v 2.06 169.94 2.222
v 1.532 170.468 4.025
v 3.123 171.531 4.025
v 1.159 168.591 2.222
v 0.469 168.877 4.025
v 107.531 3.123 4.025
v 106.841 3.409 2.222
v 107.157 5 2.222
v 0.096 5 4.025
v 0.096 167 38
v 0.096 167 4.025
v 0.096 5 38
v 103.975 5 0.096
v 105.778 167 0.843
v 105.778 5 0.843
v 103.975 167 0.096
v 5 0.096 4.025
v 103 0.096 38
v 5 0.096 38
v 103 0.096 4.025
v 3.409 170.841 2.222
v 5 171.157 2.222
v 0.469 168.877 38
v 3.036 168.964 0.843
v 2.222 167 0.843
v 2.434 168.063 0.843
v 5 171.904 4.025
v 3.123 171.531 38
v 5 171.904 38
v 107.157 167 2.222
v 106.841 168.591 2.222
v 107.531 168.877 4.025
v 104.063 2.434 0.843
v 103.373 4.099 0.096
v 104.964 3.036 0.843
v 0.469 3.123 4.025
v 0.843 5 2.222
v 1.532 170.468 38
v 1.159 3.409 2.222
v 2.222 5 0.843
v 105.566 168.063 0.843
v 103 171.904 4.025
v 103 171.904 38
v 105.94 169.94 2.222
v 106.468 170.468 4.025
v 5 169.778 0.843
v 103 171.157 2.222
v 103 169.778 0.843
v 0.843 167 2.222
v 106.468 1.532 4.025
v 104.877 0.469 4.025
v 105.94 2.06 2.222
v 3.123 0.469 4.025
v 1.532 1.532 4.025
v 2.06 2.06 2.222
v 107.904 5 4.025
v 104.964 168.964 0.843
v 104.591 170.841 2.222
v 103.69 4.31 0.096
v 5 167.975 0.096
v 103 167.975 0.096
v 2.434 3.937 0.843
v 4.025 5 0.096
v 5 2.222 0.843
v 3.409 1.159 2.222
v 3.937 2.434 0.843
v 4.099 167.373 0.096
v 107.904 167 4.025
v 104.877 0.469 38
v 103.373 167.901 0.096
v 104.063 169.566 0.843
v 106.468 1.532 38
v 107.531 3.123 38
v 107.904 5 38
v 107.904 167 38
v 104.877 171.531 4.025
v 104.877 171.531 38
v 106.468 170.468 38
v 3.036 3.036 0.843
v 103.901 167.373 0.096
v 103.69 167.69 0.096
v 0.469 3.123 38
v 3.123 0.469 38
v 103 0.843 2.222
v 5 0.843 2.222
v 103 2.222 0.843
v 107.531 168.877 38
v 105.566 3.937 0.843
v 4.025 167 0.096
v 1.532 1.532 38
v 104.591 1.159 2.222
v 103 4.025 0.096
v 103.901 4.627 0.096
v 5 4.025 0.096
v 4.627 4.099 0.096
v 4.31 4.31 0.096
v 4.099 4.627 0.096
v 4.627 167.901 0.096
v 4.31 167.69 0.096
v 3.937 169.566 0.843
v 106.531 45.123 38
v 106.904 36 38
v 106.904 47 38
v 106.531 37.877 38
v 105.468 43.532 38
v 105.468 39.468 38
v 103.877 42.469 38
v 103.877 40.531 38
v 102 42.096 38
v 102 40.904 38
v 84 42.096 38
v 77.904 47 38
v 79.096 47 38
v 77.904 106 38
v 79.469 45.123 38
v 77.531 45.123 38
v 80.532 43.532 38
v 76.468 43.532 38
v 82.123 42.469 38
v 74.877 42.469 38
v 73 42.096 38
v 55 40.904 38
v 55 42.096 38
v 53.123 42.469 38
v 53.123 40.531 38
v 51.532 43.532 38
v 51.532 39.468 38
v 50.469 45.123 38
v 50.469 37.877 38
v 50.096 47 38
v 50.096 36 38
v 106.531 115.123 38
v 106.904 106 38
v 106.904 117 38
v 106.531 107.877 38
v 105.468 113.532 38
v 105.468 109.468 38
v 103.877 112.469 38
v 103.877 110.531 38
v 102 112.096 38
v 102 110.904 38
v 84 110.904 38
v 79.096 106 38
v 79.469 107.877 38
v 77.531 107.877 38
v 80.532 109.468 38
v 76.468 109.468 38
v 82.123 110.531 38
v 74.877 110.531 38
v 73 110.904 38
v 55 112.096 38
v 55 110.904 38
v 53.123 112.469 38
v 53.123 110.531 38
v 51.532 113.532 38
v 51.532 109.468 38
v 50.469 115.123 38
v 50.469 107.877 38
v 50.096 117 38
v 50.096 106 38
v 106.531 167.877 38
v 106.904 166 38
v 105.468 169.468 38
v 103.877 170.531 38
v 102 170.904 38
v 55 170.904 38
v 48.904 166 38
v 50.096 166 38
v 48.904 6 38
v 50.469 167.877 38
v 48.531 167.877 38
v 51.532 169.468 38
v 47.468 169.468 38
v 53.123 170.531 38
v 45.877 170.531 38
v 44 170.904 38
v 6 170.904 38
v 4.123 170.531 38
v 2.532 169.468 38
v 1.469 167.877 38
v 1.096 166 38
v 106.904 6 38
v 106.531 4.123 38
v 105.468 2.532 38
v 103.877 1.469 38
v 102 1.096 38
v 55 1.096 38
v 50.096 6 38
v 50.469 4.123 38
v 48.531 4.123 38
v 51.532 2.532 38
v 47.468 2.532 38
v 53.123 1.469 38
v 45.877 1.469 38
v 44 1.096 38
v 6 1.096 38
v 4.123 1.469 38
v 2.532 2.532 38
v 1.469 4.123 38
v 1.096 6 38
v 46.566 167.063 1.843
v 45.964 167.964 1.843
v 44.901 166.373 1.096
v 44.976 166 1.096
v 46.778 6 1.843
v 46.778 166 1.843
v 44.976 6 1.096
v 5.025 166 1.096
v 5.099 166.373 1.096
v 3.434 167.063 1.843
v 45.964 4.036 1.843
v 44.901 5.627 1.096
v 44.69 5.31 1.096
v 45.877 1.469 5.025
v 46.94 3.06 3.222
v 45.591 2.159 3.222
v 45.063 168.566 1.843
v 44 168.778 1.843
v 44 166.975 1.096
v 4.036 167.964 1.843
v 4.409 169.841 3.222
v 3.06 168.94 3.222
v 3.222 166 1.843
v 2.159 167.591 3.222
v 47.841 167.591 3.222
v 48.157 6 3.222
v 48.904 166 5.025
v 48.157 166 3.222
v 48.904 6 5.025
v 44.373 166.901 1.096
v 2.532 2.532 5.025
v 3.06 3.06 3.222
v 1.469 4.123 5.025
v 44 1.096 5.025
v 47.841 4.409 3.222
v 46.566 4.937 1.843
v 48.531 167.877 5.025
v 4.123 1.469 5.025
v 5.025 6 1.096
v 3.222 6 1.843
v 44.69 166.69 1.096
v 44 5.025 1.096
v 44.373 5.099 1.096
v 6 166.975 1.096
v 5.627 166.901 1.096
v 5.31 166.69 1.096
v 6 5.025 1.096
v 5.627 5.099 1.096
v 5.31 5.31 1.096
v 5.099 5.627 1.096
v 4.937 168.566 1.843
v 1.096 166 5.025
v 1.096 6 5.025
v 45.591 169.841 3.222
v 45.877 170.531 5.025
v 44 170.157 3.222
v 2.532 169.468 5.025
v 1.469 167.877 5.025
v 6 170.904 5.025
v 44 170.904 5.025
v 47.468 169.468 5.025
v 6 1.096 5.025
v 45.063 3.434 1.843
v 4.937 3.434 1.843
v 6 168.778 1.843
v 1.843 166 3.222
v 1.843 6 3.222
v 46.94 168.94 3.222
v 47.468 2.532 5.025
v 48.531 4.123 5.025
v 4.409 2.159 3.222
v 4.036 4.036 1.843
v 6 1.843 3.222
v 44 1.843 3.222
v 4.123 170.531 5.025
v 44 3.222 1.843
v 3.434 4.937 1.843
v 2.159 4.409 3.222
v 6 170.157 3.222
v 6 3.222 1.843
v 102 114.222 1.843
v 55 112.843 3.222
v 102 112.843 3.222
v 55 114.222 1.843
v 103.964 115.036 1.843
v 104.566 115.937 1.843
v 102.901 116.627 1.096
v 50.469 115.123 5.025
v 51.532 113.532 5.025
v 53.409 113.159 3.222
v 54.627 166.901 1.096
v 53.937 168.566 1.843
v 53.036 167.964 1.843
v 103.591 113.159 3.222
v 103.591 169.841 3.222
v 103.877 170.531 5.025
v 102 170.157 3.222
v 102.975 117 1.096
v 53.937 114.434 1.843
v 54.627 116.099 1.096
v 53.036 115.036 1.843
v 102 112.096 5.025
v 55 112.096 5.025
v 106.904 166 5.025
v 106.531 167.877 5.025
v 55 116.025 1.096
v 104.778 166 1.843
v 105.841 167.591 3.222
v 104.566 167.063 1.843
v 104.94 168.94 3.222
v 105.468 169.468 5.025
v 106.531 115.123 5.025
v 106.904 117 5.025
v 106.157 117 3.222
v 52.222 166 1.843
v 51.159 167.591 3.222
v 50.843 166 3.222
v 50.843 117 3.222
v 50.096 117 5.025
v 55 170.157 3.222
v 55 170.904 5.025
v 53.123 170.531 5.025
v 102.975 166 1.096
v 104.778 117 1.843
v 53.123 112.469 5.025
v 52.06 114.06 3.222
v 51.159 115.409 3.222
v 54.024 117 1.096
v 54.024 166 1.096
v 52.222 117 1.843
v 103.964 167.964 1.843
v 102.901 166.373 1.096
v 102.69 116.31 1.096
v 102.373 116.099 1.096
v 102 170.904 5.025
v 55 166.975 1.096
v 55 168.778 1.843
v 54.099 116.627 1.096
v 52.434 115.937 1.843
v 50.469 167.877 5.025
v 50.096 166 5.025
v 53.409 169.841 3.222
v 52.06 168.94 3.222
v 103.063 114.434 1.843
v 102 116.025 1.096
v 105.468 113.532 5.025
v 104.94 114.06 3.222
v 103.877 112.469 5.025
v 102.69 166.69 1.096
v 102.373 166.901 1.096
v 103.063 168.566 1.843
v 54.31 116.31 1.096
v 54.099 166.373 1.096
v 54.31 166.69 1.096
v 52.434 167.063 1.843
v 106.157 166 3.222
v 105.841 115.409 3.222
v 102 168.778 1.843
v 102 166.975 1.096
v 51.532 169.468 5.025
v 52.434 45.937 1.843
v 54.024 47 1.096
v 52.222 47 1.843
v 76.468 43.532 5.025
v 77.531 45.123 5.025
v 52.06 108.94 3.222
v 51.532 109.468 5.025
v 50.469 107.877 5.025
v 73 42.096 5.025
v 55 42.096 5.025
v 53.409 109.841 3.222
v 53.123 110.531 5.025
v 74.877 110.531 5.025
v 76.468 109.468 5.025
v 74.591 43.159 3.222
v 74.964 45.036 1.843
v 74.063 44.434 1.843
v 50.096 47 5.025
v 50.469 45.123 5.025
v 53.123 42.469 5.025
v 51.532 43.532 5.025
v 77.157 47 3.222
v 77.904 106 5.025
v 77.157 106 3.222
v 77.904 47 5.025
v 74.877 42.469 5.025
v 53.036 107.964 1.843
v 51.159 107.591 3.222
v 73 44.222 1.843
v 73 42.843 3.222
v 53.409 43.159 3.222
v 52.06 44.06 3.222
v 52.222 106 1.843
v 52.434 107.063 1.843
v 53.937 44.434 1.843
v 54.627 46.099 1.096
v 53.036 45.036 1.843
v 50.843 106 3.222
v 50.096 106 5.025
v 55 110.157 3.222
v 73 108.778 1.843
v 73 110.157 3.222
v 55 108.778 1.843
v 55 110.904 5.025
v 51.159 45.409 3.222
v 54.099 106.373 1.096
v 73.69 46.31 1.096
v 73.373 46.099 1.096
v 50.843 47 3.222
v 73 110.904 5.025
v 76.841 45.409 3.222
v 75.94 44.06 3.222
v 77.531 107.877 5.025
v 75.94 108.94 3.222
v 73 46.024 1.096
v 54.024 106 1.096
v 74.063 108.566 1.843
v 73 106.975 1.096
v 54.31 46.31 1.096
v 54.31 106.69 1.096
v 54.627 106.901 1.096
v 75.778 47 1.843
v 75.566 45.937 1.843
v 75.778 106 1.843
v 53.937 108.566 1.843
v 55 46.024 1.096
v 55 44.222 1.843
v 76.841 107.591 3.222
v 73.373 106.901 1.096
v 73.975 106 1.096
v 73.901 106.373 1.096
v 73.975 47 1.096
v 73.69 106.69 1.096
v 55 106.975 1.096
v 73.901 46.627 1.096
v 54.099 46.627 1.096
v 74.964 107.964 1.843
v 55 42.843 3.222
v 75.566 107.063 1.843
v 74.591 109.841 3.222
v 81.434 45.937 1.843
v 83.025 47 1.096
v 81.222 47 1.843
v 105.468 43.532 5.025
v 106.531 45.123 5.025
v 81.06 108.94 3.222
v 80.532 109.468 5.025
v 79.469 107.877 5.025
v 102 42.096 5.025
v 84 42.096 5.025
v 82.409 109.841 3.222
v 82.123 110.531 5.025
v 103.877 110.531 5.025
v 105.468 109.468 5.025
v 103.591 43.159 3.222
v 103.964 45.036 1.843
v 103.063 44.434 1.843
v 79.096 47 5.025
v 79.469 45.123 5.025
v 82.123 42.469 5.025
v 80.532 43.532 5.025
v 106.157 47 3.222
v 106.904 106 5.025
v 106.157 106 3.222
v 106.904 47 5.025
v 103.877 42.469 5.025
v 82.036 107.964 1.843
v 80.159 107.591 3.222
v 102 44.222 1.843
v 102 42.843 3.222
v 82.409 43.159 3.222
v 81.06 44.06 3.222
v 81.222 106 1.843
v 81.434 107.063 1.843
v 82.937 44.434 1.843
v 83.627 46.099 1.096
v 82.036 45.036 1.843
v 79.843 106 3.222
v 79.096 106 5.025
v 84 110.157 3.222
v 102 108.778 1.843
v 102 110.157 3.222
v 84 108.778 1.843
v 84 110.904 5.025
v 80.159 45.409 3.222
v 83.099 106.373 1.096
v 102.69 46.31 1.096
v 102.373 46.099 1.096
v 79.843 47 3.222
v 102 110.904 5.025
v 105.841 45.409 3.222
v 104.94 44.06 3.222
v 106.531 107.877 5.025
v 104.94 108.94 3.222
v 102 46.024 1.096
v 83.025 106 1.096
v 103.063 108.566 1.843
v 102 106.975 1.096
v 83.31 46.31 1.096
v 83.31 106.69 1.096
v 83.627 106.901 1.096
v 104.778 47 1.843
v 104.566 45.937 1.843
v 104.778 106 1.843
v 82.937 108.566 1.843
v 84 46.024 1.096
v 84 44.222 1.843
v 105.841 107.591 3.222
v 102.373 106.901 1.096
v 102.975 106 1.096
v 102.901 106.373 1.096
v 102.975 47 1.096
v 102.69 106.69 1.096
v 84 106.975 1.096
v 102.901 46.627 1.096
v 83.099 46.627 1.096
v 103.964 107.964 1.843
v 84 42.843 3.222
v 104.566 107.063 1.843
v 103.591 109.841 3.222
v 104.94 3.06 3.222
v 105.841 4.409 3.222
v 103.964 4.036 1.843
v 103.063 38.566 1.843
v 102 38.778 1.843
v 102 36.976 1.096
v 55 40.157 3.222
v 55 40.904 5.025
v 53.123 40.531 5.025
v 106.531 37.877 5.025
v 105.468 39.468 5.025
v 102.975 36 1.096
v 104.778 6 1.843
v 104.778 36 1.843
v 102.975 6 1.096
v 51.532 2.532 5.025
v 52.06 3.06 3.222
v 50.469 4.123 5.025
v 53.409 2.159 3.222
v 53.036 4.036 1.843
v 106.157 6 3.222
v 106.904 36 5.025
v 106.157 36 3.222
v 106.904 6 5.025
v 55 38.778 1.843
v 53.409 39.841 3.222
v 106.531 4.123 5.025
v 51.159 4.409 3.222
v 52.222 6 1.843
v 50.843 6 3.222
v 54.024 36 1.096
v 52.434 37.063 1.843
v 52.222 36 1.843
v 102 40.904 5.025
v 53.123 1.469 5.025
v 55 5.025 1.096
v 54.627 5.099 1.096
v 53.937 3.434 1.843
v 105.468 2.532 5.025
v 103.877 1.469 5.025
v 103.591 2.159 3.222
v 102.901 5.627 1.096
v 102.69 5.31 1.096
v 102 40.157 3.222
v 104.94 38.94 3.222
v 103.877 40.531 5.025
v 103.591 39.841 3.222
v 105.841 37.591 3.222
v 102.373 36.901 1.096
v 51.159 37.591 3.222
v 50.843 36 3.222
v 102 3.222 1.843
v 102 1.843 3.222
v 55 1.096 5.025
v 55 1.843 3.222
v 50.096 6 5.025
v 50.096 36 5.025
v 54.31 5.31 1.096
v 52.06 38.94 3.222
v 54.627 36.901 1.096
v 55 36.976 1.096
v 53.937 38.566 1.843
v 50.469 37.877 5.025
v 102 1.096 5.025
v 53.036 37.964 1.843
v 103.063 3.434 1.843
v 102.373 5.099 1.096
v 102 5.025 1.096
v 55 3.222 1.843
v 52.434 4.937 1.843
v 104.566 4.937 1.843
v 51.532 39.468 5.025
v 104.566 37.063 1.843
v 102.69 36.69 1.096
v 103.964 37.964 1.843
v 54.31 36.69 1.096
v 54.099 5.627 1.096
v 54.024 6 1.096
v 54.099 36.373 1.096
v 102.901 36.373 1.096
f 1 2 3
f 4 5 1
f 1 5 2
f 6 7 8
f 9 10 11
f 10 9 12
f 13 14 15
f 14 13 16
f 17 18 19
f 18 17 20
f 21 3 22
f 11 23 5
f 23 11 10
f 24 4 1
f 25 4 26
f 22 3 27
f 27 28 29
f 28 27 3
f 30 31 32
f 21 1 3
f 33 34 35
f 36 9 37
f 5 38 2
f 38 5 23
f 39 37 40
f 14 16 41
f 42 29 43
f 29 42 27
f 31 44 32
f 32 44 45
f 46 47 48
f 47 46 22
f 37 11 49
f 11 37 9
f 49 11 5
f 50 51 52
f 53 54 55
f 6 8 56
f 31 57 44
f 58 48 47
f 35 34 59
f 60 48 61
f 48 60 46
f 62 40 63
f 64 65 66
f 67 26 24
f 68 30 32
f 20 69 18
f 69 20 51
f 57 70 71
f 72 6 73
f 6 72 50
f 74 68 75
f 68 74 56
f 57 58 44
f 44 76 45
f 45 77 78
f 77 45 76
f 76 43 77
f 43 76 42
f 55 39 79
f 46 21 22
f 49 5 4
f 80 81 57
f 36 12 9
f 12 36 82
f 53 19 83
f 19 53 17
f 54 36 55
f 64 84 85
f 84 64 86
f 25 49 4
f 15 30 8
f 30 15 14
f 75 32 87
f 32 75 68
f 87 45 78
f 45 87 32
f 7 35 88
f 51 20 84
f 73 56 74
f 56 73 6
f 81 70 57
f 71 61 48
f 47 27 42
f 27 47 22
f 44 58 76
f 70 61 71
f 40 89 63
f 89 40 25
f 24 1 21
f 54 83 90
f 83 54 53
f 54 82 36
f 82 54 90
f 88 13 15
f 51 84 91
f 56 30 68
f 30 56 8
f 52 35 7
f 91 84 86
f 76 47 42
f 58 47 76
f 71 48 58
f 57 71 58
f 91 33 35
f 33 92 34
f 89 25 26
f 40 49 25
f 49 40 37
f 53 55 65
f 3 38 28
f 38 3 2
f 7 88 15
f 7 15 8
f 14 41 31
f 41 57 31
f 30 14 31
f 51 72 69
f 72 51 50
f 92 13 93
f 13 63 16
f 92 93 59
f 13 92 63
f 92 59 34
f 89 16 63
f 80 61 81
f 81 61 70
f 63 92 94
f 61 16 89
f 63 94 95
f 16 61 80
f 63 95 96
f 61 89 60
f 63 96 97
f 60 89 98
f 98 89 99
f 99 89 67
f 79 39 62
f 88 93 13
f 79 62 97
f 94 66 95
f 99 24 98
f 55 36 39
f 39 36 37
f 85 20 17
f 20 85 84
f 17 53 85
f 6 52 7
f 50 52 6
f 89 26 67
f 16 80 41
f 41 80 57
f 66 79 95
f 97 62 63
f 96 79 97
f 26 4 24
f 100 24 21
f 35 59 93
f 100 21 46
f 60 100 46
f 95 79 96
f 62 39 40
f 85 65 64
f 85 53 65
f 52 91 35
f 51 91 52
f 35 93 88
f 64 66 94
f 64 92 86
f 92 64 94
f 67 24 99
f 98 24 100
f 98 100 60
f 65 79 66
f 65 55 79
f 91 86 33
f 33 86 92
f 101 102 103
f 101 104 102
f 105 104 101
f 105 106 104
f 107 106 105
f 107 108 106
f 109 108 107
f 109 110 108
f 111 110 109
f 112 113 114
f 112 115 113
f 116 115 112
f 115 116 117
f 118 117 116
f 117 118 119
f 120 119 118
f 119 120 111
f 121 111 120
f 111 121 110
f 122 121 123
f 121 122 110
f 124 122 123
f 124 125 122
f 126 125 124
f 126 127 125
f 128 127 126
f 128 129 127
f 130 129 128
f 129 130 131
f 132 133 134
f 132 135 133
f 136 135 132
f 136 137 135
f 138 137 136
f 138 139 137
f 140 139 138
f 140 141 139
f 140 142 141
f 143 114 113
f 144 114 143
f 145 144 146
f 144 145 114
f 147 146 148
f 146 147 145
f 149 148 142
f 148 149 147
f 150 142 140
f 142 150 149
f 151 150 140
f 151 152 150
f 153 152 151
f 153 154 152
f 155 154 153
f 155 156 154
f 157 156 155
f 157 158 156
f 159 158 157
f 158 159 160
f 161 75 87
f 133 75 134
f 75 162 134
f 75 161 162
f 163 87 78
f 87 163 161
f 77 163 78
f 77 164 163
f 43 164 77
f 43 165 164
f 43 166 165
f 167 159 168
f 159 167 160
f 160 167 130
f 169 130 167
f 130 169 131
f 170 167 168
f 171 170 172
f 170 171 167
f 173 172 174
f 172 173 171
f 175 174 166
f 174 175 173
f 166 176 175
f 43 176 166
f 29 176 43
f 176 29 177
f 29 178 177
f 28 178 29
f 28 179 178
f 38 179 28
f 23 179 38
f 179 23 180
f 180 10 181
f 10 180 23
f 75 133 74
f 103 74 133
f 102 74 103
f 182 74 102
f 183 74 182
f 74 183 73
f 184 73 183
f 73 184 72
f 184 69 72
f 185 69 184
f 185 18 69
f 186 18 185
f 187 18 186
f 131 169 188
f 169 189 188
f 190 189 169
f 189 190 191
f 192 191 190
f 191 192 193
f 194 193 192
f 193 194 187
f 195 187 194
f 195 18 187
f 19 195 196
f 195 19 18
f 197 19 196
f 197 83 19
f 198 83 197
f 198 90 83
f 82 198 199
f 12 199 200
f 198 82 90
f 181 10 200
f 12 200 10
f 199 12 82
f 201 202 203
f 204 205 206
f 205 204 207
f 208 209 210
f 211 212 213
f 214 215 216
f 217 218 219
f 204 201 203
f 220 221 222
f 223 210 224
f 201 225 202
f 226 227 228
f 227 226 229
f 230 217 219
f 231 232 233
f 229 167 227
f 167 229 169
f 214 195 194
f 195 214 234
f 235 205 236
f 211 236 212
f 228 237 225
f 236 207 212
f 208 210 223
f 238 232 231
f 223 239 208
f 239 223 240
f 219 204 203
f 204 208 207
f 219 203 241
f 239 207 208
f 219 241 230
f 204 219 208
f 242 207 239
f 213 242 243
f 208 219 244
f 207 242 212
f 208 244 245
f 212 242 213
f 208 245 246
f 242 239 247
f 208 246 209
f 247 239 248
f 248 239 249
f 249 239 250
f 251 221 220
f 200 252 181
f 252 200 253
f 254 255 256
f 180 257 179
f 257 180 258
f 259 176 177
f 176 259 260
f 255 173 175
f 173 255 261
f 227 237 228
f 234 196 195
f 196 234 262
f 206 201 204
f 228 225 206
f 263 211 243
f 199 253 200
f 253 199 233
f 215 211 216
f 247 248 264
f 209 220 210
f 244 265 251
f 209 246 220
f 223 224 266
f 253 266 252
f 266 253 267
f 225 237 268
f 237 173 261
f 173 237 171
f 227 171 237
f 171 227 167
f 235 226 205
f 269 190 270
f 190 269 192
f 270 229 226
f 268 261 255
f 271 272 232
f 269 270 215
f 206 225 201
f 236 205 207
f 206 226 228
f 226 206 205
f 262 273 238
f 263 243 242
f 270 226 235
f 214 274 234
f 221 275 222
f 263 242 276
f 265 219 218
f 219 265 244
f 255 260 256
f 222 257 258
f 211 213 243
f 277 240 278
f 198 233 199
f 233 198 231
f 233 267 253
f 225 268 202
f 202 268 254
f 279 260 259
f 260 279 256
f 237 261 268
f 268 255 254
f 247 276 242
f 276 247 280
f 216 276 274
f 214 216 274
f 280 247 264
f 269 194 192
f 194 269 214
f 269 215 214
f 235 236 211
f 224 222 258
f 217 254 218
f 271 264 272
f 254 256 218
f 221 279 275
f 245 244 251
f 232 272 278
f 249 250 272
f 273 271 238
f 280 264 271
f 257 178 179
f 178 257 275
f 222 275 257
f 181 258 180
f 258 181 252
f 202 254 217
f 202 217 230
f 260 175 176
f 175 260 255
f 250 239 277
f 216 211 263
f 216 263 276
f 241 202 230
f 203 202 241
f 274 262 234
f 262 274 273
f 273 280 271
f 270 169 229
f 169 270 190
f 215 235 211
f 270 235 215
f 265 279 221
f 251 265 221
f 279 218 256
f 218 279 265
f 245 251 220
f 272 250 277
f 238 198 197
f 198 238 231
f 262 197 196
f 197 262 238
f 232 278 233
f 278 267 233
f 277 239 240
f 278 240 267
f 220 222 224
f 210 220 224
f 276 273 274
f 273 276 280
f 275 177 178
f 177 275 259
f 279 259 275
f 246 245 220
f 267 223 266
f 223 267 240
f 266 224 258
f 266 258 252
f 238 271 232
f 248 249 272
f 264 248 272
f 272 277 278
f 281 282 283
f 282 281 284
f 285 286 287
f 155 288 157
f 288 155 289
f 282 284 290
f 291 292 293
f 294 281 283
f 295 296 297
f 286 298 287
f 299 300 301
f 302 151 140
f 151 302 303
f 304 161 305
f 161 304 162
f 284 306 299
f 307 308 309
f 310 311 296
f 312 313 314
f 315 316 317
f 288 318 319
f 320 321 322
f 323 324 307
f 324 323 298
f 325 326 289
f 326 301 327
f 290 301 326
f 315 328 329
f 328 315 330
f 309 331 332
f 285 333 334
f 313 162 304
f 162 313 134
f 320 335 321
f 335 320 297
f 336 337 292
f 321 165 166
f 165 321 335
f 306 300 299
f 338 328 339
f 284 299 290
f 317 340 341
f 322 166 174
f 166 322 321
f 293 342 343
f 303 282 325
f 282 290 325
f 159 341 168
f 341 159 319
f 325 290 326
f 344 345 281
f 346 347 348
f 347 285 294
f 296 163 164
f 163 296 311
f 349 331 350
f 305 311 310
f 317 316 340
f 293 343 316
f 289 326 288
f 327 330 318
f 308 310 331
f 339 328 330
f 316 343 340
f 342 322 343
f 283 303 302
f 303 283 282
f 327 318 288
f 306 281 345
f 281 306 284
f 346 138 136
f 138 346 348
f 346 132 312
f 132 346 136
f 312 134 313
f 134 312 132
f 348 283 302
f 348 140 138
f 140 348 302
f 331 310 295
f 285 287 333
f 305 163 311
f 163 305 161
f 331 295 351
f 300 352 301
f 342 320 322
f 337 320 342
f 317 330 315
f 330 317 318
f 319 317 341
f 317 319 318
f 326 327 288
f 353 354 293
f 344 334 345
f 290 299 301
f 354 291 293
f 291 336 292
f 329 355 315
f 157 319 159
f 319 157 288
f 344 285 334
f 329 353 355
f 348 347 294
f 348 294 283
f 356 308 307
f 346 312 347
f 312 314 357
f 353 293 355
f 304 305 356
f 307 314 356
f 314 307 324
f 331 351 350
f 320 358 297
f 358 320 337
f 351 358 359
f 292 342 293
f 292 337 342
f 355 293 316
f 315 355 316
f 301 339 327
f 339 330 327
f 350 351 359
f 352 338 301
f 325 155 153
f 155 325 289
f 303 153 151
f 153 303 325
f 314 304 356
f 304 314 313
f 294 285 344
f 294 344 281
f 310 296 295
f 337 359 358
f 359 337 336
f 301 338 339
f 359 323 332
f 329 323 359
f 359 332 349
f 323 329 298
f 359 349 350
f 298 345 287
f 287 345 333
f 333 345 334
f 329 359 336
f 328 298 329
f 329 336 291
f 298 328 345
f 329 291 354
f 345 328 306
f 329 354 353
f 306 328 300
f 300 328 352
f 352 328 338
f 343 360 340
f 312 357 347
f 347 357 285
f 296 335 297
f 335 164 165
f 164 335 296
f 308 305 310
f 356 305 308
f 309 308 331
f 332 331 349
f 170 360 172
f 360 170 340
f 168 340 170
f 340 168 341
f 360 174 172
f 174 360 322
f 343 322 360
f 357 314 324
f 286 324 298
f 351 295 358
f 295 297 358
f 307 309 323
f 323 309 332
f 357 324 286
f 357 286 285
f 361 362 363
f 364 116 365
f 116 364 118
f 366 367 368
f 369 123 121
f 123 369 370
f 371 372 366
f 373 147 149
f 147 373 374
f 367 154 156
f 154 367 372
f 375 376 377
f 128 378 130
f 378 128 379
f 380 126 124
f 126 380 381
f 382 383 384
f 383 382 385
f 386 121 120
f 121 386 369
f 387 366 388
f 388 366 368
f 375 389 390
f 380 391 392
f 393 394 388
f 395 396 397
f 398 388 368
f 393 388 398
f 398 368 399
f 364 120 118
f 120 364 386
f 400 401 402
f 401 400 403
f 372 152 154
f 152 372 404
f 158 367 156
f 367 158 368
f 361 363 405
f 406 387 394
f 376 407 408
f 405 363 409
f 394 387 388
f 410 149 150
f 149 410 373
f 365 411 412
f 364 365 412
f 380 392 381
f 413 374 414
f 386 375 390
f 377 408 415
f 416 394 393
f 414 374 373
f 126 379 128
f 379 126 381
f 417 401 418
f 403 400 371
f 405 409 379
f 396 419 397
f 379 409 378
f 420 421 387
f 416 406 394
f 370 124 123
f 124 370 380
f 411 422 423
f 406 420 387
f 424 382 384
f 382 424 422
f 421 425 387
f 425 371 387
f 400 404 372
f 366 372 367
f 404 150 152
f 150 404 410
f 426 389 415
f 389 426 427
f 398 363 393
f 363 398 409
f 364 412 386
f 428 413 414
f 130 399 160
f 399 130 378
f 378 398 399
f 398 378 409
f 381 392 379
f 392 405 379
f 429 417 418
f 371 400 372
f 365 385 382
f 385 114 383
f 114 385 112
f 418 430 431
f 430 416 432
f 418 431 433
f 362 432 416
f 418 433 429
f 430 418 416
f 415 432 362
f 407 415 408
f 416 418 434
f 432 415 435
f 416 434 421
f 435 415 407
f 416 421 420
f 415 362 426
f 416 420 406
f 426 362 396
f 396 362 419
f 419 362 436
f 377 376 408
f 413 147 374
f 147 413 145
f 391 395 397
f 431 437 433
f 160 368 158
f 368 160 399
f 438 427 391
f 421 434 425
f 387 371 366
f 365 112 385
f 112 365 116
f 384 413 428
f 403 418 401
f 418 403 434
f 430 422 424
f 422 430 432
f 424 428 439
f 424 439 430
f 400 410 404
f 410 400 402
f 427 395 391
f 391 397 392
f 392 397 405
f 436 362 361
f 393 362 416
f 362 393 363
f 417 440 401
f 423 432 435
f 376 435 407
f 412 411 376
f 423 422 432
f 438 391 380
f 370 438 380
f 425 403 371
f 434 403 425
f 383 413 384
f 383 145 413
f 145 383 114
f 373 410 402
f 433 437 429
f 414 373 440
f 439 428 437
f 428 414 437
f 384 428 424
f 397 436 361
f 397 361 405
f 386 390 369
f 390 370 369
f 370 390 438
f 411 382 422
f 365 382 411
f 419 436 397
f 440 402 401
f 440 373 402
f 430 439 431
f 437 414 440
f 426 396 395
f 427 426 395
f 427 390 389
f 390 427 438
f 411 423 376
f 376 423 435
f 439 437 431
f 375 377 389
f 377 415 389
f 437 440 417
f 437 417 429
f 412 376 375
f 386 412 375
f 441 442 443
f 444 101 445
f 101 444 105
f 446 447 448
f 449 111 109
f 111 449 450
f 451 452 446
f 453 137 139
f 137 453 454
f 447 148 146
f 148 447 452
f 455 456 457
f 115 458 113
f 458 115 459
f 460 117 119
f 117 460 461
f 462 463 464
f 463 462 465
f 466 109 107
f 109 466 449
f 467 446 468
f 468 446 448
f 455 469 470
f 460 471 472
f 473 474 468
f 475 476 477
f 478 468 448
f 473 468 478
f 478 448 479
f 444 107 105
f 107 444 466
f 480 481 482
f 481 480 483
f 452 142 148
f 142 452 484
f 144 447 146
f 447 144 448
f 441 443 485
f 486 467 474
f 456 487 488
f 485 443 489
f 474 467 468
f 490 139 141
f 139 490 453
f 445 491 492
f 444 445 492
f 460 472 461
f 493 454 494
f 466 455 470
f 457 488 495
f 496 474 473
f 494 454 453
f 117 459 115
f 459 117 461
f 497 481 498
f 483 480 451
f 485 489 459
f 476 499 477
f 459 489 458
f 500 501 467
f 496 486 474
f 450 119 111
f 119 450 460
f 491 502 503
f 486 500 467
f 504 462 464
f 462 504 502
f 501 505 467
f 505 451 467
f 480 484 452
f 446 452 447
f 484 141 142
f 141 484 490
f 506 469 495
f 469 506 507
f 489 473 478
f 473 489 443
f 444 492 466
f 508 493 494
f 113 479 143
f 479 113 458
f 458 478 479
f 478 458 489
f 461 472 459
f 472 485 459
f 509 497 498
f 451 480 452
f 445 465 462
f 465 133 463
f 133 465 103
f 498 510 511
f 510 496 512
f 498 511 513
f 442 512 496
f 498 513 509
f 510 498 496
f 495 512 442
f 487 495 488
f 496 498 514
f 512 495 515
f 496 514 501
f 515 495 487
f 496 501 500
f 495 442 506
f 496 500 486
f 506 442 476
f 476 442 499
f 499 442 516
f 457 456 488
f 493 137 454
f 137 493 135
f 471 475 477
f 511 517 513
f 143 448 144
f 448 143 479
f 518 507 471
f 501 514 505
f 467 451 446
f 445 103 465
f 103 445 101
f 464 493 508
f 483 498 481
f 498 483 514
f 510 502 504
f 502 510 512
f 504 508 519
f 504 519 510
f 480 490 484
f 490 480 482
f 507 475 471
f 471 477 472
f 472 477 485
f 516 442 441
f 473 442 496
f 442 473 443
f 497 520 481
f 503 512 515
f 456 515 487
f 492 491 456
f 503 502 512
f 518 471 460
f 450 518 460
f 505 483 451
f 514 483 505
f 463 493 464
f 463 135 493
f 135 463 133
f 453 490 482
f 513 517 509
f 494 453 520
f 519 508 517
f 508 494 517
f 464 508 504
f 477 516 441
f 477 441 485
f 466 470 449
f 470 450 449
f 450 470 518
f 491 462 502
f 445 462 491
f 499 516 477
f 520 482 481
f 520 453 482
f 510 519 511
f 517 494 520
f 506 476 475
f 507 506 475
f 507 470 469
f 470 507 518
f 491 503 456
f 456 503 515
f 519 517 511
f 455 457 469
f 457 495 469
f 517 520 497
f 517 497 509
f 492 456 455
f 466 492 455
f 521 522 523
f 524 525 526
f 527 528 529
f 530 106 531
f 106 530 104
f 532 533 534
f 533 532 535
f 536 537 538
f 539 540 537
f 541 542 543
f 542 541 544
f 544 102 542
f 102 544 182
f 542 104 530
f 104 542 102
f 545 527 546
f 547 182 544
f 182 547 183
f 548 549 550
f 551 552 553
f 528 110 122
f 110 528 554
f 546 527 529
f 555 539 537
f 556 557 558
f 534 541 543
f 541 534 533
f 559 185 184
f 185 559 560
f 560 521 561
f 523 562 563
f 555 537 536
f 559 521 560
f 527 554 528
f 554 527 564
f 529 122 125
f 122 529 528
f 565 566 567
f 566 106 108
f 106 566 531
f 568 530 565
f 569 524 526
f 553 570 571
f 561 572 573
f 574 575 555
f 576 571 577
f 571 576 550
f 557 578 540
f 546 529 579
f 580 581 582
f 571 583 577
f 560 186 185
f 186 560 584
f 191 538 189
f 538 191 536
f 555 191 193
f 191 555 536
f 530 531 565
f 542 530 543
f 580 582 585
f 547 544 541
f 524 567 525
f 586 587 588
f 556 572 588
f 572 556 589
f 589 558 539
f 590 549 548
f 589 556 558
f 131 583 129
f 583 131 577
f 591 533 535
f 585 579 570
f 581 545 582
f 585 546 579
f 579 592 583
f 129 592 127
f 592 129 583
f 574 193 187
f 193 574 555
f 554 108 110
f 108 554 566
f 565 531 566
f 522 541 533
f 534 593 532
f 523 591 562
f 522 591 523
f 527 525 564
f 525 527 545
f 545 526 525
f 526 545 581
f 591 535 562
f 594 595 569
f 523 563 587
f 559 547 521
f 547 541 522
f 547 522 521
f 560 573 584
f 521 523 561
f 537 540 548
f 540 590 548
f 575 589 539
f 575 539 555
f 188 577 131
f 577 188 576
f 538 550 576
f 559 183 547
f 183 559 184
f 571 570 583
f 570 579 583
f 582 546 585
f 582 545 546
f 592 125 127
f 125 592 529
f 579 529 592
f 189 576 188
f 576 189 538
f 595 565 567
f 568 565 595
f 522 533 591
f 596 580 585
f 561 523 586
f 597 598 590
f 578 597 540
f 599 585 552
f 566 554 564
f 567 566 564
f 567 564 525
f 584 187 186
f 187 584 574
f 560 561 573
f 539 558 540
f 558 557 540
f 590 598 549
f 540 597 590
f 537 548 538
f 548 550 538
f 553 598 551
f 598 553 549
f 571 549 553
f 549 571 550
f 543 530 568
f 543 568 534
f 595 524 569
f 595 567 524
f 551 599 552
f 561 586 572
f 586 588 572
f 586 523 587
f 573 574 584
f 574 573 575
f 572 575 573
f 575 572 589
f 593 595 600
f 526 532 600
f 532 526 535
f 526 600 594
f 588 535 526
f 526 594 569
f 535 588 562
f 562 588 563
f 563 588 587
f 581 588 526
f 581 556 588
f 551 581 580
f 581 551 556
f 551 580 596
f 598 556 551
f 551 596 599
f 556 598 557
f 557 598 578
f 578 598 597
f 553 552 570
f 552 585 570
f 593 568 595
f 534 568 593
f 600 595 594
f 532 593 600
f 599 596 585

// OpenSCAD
//width 108  length 172
//main and sharps, 50 or so by whole length
//alligators and forks, Right side remaining 58 x 60long

radius = 5;
width = 108;
length = 172;
height = 38;
wall = 1;

// +----+-------+
// | 1  | 2     |
// |    |       |
// |    +-------+
// |    | 3 | 4 |
// |    |   |   |
// |    |-------+
// |    | 5     |
// |    |       |
// +----+-------+

leads_and_sharps_width = 48; // 1
leads_and_sharps_length = 170;
alligators_and_forks_width = 57; // 2
alligators_and_forks_length = 59;
l_clamps_width = 28; // 3
l_clamps_length = 69;
thermistor_width = 28; // 4
thermistor_length = 69;
tiny_clamps_width = 57; // 5
tiny_clamps_length = 40;

module box() {
  difference() {
    round_bottom_box(width,length,height,radius);
    leads_and_sharps();
    alligators_and_forks();
    l_clamps();
    thermistor();
    tiny_clamps();
  }
}

module leads_and_sharps() {
  translate([wall,wall,wall]) {
    round_bottom_box(leads_and_sharps_width,leads_and_sharps_length,height,radius);
  }
}

module alligators_and_forks() {
  translate([wall + leads_and_sharps_width + wall, wall + tiny_clamps_length + wall + thermistor_length + wall, wall])
    round_bottom_box(alligators_and_forks_width, alligators_and_forks_length, height, radius);
}

module l_clamps() {
  translate([wall + leads_and_sharps_width + wall, wall + tiny_clamps_length + wall, wall])
    round_bottom_box(l_clamps_width, l_clamps_length, height, radius);
}

module thermistor() {
  translate([wall + leads_and_sharps_width + wall + l_clamps_width + wall, wall + tiny_clamps_length + wall, wall])
    round_bottom_box(thermistor_width, thermistor_length, height, radius);
}

module tiny_clamps() {
  translate([wall + leads_and_sharps_width + wall, wall, wall])
    round_bottom_box(tiny_clamps_width, tiny_clamps_length, height, radius);
}

module spheres(width,length,height,radius) {
  translate([radius,radius,radius]) sphere(radius);
  translate([width-radius, length-radius, radius]) sphere(radius);
  translate([width-radius, radius, radius]) sphere(radius);
  translate([radius, length-radius, radius]) sphere(radius);
}

module slicer(width,length,height) {
  translate([0,0,height]) cube([width, length, height]); 
}

module round_bottom_box(width, length, height,radius) {
  difference() {
    hull() {
      spheres(width,length,height,radius);
      translate([0,0,height]) spheres(width,length,height,radius);
    }
    slicer(width, length, height);
  }
}

box();
